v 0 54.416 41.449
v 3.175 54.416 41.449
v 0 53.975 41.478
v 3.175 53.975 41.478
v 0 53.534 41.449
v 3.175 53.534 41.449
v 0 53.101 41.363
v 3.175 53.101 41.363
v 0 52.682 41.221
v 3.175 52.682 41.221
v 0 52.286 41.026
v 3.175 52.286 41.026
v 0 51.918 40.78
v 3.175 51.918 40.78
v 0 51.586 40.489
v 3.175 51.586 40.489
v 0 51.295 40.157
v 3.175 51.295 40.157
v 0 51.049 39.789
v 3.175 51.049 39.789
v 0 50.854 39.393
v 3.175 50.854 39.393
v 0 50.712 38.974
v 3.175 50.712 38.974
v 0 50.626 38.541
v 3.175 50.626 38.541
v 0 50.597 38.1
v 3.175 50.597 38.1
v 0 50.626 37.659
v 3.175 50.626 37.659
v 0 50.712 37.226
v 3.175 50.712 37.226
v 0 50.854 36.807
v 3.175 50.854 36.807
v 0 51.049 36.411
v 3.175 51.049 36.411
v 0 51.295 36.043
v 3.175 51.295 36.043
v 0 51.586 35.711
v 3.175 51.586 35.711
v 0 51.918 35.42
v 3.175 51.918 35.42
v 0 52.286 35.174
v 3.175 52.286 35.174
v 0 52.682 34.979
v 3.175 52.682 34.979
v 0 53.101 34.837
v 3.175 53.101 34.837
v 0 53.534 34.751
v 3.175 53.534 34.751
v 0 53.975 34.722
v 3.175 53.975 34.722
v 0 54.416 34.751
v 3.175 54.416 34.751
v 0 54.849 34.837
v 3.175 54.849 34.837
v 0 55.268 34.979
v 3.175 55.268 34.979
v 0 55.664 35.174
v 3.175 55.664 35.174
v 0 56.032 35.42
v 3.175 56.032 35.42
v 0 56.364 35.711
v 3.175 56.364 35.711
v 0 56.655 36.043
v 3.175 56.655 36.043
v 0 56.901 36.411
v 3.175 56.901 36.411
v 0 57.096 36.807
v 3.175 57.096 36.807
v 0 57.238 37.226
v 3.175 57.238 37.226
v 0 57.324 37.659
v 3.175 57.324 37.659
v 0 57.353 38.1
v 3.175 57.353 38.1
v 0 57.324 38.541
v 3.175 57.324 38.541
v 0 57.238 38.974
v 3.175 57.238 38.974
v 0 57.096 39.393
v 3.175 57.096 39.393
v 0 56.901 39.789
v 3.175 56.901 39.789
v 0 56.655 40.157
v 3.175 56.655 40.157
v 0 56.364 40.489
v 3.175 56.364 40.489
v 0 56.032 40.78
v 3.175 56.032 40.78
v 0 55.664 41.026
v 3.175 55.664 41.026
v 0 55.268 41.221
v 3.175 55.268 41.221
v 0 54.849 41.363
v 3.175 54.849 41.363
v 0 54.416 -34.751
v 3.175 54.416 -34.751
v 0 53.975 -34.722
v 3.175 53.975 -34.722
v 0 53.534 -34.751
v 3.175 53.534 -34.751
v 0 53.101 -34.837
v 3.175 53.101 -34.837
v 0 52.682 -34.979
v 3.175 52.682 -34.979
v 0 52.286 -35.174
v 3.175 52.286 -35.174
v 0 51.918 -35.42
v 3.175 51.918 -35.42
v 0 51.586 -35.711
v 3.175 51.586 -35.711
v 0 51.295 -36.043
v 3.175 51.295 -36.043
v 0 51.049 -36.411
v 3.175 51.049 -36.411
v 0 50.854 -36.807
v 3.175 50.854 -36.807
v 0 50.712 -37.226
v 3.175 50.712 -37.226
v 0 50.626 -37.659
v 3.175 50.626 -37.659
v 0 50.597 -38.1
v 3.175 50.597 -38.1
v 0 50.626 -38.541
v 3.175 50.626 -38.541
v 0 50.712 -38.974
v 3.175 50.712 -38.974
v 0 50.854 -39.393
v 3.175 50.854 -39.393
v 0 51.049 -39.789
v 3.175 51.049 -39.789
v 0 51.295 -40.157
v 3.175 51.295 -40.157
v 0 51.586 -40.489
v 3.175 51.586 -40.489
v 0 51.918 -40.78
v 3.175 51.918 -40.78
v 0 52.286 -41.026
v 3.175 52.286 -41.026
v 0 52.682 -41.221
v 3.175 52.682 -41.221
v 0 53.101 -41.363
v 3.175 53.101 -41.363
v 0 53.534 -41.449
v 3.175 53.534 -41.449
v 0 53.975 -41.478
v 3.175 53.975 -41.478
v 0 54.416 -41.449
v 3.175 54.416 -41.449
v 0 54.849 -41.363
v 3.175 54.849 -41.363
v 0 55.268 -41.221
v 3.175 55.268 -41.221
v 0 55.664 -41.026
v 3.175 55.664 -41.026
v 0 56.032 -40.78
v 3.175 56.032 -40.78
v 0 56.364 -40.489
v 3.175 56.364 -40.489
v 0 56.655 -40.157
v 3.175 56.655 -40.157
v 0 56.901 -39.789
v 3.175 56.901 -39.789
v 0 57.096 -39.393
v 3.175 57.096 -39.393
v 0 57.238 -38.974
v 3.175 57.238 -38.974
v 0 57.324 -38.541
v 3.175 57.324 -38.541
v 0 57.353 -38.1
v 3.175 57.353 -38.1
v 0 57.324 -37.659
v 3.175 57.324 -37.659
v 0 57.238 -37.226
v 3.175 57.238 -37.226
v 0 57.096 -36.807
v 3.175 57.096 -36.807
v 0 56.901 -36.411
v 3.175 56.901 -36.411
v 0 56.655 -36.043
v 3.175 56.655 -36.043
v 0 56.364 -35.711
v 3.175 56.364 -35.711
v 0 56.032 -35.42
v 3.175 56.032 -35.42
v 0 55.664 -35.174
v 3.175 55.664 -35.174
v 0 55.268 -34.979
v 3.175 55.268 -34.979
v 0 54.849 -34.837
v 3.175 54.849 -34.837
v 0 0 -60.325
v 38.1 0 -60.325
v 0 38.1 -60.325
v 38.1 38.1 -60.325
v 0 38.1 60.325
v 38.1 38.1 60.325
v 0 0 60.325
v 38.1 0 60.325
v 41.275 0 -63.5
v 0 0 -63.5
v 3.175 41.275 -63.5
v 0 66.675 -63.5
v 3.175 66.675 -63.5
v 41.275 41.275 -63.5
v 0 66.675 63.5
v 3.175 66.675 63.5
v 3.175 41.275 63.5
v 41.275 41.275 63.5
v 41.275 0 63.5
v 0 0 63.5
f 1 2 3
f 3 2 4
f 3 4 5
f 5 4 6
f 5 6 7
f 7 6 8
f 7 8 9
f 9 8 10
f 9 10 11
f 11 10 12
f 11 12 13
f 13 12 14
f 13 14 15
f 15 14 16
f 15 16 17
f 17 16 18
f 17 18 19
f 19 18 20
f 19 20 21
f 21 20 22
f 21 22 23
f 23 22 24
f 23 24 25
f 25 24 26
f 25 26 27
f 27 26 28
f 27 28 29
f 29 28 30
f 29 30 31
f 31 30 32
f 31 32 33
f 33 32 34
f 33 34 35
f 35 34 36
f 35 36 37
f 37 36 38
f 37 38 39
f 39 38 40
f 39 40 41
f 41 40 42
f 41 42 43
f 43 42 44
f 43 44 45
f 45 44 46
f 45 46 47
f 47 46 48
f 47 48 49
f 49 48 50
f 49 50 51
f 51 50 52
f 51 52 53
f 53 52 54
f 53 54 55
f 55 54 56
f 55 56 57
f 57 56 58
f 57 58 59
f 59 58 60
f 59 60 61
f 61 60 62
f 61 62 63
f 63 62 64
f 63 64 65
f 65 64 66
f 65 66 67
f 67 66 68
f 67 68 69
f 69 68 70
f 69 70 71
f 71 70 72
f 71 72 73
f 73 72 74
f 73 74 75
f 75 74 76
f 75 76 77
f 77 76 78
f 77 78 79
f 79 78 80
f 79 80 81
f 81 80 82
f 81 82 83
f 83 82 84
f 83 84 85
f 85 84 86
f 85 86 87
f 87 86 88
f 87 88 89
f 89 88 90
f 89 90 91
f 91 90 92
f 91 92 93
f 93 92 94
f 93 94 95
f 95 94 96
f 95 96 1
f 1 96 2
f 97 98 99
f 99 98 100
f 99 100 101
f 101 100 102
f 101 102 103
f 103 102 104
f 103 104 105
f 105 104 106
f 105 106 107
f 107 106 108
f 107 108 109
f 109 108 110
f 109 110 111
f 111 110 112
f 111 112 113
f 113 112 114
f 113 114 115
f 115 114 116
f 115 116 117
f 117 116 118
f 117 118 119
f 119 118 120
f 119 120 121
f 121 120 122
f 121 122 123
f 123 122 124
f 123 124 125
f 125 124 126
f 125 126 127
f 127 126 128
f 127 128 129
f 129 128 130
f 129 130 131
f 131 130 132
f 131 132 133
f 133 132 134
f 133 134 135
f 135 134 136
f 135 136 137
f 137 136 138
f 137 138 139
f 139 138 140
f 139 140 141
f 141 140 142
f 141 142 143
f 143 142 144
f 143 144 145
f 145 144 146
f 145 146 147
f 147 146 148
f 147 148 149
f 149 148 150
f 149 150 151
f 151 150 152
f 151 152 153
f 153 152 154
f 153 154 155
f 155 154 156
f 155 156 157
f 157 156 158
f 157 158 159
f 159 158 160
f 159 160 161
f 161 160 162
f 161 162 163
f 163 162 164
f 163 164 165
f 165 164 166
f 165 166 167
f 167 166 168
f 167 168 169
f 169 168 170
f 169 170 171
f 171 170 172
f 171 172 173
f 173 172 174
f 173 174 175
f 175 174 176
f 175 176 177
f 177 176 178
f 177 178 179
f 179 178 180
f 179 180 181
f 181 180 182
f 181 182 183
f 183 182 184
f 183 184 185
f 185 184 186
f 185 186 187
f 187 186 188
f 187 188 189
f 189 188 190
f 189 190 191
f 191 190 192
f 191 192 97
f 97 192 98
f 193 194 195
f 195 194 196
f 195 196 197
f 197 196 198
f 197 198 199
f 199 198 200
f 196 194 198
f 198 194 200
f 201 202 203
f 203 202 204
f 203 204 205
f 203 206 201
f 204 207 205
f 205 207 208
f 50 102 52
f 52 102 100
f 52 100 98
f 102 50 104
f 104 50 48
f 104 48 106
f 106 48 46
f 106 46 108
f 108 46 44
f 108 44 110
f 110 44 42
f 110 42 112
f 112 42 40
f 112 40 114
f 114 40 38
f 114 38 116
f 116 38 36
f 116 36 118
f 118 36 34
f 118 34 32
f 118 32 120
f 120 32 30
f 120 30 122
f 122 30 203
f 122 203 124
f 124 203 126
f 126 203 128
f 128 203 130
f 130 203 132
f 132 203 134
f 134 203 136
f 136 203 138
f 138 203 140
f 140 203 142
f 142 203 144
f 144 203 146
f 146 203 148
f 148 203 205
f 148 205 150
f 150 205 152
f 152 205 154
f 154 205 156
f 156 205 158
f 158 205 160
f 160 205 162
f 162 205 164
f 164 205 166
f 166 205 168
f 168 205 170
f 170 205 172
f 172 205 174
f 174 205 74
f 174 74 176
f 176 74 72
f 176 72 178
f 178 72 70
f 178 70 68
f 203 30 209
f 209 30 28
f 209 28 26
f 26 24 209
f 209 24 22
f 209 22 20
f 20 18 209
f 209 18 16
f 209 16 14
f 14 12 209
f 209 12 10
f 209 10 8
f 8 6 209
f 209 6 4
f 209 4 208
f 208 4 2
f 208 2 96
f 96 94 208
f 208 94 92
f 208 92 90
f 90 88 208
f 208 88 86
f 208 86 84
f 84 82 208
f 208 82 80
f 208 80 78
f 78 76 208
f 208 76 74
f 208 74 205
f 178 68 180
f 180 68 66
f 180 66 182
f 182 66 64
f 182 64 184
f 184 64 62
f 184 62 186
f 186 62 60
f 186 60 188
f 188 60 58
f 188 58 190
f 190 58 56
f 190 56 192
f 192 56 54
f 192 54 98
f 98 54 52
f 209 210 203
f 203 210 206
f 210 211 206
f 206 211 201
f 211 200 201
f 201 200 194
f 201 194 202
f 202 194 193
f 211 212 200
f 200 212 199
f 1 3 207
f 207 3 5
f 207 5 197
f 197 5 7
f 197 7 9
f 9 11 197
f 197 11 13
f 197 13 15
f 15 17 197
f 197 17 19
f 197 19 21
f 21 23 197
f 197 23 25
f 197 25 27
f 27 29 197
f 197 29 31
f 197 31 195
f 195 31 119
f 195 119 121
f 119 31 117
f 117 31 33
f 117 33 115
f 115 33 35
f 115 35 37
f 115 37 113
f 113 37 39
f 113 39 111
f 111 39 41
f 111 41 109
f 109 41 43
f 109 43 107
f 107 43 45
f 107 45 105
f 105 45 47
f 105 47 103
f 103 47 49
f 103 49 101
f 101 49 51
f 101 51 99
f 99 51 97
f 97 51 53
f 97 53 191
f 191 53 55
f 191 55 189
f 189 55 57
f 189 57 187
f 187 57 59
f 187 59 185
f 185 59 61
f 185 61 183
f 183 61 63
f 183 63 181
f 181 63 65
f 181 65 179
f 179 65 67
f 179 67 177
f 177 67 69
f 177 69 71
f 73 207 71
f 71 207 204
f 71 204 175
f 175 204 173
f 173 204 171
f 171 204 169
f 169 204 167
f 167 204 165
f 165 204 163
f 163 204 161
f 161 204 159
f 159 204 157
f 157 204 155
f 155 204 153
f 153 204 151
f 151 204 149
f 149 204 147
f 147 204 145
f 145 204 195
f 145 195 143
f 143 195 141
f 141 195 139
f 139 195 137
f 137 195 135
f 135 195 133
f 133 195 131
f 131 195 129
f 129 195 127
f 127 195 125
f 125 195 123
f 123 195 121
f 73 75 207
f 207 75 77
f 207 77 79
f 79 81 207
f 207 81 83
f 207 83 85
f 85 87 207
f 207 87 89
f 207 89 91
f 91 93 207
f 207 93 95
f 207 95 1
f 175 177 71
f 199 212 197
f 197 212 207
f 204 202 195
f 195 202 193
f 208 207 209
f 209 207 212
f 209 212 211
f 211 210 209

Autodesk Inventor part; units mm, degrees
ref_plane "YZ Plane" through (0, 0, 0) normal (1, 0, 0) x (0, 1, 0)
ref_plane "XZ Plane" through (0, 0, 0) normal (0, 1, 0) x (-1, 0, 0)
ref_plane "XY Plane" through (0, 0, 0) normal (0, 0, 1) x (1, 0, 0)
sketch "Sketch1" plane through (0, 0, 0) normal (0, 0, 1) x (1, 0, 0)
  line L0 (0, 66.675) -> (0, 38.1)
  line L1 (0, 66.675) -> (3.175, 66.675)
  line L2 (3.175, 66.675) -> (3.175, 41.275)
  line L3 (3.175, 41.275) -> (41.275, 41.275)
  line L4 (41.275, 41.275) -> (41.275, 0)
  line L5 (41.275, 0) -> (38.1, 0)
  line L6 (38.1, 0) -> (38.1, 38.1)
  line L7 (38.1, 38.1) -> (0, 38.1)
  point P0 (0, 0)
  dimension "d0" = 3.175
  dimension "d1" = 3.175
  dimension "d2" = 3.175
  dimension "d3" = 38.1
  dimension "d4" = 38.1
  dimension "d5" = 25.4
extrude "Extrusion1" add sketch "Sketch1" along normal mid plane 127
sketch "Sketch2" plane through (0, 0, 63.5) normal (0, 0, 1) x (1, 0, 0)
  line L0 (0, 38.1) -> (38.1, 38.1) projected
  line L1 (38.1, 38.1) -> (38.1, 0) projected
  line L2 (0, 38.1) -> (38.1, 38.1)
  line L3 (38.1, 38.1) -> (38.1, 0)
  line L4 (38.1, 0) -> (0, 0)
  line L5 (0, 0) -> (0, 38.1)
  point P0 (0, 0)
extrude "Extrusion2" add sketch "Sketch2" against normal blind 3.175
sketch "Sketch3" plane through (0, 0, -63.5) normal (0, 0, -1) x (-1, 0, 0)
  line L0 (-38.1, 38.1) -> (0, 38.1) projected
  line L1 (0, 0) -> (0, 38.1) projected
  line L2 (-38.1, 38.1) -> (0, 38.1)
  line L3 (0, 38.1) -> (0, 0)
  line L4 (0, 0) -> (-38.1, 0)
  line L5 (-38.1, 0) -> (-38.1, 38.1)
extrude "Extrusion3" add sketch "Sketch3" against normal blind 3.175
sketch "Sketch4" plane through (3.175, 41.275, 63.5) normal (1, 0, 0) x (0, 0, -1)
  line L0 (0, 0) -> (0, 25.4) construction
  line L1 (0, 12.7) -> (127, 12.7) construction
  line L2 (127, 25.4) -> (127, 0) construction
  point P0 (63.5, -41.275)
  point P1 (25.4, 12.7)
  point P2 (101.6, 12.7)
  dimension "d12" = 76.2
  dimension "d13" = 25.4
hole "Hole1" at (3.175, 53.975, 38.1) at (3.175, 53.975, -38.1) direction (-1, 0, 0) diameter 6.7564 end through all clearance for "Flat Head Machine Screw (82)" size "1/4" standard "Ansi Unified Screw Threads"
equation "\"d0\" = materialWidth"
equation "\"d1\" = materialWidth"
equation "\"d2\" = materialWidth"
equation "\"d3\" = plugDepth"
equation "\"d4\" = plugHeight"
equation "\"d5\" = heightForBolts"
equation "\"d6\" = overallWidth"
equation "\"d8\" = materialWidth"
equation "\"d10\" = materialWidth"
equation "\"d12\" = distanceBetweenBolts"
equation "\"d13\" = distanceEdgeToBoltHoles"
equation "\"overallWidth\" = 127"
equation "\"extendFromWall\" = 63.5"
equation "\"heightForBolts\" = 25.4"
equation "\"materialWidth\" = 3.175"
equation "\"plugHeight\" = 38.1"
equation "\"plugDepth\" = 38.1"
equation "\"distanceBetweenBolts\" = overallWidth - 2 * distanceEdgeToBoltHoles"
equation "\"distanceEdgeToBoltHoles\" = 25.4"
properties part number "electricalCover"
